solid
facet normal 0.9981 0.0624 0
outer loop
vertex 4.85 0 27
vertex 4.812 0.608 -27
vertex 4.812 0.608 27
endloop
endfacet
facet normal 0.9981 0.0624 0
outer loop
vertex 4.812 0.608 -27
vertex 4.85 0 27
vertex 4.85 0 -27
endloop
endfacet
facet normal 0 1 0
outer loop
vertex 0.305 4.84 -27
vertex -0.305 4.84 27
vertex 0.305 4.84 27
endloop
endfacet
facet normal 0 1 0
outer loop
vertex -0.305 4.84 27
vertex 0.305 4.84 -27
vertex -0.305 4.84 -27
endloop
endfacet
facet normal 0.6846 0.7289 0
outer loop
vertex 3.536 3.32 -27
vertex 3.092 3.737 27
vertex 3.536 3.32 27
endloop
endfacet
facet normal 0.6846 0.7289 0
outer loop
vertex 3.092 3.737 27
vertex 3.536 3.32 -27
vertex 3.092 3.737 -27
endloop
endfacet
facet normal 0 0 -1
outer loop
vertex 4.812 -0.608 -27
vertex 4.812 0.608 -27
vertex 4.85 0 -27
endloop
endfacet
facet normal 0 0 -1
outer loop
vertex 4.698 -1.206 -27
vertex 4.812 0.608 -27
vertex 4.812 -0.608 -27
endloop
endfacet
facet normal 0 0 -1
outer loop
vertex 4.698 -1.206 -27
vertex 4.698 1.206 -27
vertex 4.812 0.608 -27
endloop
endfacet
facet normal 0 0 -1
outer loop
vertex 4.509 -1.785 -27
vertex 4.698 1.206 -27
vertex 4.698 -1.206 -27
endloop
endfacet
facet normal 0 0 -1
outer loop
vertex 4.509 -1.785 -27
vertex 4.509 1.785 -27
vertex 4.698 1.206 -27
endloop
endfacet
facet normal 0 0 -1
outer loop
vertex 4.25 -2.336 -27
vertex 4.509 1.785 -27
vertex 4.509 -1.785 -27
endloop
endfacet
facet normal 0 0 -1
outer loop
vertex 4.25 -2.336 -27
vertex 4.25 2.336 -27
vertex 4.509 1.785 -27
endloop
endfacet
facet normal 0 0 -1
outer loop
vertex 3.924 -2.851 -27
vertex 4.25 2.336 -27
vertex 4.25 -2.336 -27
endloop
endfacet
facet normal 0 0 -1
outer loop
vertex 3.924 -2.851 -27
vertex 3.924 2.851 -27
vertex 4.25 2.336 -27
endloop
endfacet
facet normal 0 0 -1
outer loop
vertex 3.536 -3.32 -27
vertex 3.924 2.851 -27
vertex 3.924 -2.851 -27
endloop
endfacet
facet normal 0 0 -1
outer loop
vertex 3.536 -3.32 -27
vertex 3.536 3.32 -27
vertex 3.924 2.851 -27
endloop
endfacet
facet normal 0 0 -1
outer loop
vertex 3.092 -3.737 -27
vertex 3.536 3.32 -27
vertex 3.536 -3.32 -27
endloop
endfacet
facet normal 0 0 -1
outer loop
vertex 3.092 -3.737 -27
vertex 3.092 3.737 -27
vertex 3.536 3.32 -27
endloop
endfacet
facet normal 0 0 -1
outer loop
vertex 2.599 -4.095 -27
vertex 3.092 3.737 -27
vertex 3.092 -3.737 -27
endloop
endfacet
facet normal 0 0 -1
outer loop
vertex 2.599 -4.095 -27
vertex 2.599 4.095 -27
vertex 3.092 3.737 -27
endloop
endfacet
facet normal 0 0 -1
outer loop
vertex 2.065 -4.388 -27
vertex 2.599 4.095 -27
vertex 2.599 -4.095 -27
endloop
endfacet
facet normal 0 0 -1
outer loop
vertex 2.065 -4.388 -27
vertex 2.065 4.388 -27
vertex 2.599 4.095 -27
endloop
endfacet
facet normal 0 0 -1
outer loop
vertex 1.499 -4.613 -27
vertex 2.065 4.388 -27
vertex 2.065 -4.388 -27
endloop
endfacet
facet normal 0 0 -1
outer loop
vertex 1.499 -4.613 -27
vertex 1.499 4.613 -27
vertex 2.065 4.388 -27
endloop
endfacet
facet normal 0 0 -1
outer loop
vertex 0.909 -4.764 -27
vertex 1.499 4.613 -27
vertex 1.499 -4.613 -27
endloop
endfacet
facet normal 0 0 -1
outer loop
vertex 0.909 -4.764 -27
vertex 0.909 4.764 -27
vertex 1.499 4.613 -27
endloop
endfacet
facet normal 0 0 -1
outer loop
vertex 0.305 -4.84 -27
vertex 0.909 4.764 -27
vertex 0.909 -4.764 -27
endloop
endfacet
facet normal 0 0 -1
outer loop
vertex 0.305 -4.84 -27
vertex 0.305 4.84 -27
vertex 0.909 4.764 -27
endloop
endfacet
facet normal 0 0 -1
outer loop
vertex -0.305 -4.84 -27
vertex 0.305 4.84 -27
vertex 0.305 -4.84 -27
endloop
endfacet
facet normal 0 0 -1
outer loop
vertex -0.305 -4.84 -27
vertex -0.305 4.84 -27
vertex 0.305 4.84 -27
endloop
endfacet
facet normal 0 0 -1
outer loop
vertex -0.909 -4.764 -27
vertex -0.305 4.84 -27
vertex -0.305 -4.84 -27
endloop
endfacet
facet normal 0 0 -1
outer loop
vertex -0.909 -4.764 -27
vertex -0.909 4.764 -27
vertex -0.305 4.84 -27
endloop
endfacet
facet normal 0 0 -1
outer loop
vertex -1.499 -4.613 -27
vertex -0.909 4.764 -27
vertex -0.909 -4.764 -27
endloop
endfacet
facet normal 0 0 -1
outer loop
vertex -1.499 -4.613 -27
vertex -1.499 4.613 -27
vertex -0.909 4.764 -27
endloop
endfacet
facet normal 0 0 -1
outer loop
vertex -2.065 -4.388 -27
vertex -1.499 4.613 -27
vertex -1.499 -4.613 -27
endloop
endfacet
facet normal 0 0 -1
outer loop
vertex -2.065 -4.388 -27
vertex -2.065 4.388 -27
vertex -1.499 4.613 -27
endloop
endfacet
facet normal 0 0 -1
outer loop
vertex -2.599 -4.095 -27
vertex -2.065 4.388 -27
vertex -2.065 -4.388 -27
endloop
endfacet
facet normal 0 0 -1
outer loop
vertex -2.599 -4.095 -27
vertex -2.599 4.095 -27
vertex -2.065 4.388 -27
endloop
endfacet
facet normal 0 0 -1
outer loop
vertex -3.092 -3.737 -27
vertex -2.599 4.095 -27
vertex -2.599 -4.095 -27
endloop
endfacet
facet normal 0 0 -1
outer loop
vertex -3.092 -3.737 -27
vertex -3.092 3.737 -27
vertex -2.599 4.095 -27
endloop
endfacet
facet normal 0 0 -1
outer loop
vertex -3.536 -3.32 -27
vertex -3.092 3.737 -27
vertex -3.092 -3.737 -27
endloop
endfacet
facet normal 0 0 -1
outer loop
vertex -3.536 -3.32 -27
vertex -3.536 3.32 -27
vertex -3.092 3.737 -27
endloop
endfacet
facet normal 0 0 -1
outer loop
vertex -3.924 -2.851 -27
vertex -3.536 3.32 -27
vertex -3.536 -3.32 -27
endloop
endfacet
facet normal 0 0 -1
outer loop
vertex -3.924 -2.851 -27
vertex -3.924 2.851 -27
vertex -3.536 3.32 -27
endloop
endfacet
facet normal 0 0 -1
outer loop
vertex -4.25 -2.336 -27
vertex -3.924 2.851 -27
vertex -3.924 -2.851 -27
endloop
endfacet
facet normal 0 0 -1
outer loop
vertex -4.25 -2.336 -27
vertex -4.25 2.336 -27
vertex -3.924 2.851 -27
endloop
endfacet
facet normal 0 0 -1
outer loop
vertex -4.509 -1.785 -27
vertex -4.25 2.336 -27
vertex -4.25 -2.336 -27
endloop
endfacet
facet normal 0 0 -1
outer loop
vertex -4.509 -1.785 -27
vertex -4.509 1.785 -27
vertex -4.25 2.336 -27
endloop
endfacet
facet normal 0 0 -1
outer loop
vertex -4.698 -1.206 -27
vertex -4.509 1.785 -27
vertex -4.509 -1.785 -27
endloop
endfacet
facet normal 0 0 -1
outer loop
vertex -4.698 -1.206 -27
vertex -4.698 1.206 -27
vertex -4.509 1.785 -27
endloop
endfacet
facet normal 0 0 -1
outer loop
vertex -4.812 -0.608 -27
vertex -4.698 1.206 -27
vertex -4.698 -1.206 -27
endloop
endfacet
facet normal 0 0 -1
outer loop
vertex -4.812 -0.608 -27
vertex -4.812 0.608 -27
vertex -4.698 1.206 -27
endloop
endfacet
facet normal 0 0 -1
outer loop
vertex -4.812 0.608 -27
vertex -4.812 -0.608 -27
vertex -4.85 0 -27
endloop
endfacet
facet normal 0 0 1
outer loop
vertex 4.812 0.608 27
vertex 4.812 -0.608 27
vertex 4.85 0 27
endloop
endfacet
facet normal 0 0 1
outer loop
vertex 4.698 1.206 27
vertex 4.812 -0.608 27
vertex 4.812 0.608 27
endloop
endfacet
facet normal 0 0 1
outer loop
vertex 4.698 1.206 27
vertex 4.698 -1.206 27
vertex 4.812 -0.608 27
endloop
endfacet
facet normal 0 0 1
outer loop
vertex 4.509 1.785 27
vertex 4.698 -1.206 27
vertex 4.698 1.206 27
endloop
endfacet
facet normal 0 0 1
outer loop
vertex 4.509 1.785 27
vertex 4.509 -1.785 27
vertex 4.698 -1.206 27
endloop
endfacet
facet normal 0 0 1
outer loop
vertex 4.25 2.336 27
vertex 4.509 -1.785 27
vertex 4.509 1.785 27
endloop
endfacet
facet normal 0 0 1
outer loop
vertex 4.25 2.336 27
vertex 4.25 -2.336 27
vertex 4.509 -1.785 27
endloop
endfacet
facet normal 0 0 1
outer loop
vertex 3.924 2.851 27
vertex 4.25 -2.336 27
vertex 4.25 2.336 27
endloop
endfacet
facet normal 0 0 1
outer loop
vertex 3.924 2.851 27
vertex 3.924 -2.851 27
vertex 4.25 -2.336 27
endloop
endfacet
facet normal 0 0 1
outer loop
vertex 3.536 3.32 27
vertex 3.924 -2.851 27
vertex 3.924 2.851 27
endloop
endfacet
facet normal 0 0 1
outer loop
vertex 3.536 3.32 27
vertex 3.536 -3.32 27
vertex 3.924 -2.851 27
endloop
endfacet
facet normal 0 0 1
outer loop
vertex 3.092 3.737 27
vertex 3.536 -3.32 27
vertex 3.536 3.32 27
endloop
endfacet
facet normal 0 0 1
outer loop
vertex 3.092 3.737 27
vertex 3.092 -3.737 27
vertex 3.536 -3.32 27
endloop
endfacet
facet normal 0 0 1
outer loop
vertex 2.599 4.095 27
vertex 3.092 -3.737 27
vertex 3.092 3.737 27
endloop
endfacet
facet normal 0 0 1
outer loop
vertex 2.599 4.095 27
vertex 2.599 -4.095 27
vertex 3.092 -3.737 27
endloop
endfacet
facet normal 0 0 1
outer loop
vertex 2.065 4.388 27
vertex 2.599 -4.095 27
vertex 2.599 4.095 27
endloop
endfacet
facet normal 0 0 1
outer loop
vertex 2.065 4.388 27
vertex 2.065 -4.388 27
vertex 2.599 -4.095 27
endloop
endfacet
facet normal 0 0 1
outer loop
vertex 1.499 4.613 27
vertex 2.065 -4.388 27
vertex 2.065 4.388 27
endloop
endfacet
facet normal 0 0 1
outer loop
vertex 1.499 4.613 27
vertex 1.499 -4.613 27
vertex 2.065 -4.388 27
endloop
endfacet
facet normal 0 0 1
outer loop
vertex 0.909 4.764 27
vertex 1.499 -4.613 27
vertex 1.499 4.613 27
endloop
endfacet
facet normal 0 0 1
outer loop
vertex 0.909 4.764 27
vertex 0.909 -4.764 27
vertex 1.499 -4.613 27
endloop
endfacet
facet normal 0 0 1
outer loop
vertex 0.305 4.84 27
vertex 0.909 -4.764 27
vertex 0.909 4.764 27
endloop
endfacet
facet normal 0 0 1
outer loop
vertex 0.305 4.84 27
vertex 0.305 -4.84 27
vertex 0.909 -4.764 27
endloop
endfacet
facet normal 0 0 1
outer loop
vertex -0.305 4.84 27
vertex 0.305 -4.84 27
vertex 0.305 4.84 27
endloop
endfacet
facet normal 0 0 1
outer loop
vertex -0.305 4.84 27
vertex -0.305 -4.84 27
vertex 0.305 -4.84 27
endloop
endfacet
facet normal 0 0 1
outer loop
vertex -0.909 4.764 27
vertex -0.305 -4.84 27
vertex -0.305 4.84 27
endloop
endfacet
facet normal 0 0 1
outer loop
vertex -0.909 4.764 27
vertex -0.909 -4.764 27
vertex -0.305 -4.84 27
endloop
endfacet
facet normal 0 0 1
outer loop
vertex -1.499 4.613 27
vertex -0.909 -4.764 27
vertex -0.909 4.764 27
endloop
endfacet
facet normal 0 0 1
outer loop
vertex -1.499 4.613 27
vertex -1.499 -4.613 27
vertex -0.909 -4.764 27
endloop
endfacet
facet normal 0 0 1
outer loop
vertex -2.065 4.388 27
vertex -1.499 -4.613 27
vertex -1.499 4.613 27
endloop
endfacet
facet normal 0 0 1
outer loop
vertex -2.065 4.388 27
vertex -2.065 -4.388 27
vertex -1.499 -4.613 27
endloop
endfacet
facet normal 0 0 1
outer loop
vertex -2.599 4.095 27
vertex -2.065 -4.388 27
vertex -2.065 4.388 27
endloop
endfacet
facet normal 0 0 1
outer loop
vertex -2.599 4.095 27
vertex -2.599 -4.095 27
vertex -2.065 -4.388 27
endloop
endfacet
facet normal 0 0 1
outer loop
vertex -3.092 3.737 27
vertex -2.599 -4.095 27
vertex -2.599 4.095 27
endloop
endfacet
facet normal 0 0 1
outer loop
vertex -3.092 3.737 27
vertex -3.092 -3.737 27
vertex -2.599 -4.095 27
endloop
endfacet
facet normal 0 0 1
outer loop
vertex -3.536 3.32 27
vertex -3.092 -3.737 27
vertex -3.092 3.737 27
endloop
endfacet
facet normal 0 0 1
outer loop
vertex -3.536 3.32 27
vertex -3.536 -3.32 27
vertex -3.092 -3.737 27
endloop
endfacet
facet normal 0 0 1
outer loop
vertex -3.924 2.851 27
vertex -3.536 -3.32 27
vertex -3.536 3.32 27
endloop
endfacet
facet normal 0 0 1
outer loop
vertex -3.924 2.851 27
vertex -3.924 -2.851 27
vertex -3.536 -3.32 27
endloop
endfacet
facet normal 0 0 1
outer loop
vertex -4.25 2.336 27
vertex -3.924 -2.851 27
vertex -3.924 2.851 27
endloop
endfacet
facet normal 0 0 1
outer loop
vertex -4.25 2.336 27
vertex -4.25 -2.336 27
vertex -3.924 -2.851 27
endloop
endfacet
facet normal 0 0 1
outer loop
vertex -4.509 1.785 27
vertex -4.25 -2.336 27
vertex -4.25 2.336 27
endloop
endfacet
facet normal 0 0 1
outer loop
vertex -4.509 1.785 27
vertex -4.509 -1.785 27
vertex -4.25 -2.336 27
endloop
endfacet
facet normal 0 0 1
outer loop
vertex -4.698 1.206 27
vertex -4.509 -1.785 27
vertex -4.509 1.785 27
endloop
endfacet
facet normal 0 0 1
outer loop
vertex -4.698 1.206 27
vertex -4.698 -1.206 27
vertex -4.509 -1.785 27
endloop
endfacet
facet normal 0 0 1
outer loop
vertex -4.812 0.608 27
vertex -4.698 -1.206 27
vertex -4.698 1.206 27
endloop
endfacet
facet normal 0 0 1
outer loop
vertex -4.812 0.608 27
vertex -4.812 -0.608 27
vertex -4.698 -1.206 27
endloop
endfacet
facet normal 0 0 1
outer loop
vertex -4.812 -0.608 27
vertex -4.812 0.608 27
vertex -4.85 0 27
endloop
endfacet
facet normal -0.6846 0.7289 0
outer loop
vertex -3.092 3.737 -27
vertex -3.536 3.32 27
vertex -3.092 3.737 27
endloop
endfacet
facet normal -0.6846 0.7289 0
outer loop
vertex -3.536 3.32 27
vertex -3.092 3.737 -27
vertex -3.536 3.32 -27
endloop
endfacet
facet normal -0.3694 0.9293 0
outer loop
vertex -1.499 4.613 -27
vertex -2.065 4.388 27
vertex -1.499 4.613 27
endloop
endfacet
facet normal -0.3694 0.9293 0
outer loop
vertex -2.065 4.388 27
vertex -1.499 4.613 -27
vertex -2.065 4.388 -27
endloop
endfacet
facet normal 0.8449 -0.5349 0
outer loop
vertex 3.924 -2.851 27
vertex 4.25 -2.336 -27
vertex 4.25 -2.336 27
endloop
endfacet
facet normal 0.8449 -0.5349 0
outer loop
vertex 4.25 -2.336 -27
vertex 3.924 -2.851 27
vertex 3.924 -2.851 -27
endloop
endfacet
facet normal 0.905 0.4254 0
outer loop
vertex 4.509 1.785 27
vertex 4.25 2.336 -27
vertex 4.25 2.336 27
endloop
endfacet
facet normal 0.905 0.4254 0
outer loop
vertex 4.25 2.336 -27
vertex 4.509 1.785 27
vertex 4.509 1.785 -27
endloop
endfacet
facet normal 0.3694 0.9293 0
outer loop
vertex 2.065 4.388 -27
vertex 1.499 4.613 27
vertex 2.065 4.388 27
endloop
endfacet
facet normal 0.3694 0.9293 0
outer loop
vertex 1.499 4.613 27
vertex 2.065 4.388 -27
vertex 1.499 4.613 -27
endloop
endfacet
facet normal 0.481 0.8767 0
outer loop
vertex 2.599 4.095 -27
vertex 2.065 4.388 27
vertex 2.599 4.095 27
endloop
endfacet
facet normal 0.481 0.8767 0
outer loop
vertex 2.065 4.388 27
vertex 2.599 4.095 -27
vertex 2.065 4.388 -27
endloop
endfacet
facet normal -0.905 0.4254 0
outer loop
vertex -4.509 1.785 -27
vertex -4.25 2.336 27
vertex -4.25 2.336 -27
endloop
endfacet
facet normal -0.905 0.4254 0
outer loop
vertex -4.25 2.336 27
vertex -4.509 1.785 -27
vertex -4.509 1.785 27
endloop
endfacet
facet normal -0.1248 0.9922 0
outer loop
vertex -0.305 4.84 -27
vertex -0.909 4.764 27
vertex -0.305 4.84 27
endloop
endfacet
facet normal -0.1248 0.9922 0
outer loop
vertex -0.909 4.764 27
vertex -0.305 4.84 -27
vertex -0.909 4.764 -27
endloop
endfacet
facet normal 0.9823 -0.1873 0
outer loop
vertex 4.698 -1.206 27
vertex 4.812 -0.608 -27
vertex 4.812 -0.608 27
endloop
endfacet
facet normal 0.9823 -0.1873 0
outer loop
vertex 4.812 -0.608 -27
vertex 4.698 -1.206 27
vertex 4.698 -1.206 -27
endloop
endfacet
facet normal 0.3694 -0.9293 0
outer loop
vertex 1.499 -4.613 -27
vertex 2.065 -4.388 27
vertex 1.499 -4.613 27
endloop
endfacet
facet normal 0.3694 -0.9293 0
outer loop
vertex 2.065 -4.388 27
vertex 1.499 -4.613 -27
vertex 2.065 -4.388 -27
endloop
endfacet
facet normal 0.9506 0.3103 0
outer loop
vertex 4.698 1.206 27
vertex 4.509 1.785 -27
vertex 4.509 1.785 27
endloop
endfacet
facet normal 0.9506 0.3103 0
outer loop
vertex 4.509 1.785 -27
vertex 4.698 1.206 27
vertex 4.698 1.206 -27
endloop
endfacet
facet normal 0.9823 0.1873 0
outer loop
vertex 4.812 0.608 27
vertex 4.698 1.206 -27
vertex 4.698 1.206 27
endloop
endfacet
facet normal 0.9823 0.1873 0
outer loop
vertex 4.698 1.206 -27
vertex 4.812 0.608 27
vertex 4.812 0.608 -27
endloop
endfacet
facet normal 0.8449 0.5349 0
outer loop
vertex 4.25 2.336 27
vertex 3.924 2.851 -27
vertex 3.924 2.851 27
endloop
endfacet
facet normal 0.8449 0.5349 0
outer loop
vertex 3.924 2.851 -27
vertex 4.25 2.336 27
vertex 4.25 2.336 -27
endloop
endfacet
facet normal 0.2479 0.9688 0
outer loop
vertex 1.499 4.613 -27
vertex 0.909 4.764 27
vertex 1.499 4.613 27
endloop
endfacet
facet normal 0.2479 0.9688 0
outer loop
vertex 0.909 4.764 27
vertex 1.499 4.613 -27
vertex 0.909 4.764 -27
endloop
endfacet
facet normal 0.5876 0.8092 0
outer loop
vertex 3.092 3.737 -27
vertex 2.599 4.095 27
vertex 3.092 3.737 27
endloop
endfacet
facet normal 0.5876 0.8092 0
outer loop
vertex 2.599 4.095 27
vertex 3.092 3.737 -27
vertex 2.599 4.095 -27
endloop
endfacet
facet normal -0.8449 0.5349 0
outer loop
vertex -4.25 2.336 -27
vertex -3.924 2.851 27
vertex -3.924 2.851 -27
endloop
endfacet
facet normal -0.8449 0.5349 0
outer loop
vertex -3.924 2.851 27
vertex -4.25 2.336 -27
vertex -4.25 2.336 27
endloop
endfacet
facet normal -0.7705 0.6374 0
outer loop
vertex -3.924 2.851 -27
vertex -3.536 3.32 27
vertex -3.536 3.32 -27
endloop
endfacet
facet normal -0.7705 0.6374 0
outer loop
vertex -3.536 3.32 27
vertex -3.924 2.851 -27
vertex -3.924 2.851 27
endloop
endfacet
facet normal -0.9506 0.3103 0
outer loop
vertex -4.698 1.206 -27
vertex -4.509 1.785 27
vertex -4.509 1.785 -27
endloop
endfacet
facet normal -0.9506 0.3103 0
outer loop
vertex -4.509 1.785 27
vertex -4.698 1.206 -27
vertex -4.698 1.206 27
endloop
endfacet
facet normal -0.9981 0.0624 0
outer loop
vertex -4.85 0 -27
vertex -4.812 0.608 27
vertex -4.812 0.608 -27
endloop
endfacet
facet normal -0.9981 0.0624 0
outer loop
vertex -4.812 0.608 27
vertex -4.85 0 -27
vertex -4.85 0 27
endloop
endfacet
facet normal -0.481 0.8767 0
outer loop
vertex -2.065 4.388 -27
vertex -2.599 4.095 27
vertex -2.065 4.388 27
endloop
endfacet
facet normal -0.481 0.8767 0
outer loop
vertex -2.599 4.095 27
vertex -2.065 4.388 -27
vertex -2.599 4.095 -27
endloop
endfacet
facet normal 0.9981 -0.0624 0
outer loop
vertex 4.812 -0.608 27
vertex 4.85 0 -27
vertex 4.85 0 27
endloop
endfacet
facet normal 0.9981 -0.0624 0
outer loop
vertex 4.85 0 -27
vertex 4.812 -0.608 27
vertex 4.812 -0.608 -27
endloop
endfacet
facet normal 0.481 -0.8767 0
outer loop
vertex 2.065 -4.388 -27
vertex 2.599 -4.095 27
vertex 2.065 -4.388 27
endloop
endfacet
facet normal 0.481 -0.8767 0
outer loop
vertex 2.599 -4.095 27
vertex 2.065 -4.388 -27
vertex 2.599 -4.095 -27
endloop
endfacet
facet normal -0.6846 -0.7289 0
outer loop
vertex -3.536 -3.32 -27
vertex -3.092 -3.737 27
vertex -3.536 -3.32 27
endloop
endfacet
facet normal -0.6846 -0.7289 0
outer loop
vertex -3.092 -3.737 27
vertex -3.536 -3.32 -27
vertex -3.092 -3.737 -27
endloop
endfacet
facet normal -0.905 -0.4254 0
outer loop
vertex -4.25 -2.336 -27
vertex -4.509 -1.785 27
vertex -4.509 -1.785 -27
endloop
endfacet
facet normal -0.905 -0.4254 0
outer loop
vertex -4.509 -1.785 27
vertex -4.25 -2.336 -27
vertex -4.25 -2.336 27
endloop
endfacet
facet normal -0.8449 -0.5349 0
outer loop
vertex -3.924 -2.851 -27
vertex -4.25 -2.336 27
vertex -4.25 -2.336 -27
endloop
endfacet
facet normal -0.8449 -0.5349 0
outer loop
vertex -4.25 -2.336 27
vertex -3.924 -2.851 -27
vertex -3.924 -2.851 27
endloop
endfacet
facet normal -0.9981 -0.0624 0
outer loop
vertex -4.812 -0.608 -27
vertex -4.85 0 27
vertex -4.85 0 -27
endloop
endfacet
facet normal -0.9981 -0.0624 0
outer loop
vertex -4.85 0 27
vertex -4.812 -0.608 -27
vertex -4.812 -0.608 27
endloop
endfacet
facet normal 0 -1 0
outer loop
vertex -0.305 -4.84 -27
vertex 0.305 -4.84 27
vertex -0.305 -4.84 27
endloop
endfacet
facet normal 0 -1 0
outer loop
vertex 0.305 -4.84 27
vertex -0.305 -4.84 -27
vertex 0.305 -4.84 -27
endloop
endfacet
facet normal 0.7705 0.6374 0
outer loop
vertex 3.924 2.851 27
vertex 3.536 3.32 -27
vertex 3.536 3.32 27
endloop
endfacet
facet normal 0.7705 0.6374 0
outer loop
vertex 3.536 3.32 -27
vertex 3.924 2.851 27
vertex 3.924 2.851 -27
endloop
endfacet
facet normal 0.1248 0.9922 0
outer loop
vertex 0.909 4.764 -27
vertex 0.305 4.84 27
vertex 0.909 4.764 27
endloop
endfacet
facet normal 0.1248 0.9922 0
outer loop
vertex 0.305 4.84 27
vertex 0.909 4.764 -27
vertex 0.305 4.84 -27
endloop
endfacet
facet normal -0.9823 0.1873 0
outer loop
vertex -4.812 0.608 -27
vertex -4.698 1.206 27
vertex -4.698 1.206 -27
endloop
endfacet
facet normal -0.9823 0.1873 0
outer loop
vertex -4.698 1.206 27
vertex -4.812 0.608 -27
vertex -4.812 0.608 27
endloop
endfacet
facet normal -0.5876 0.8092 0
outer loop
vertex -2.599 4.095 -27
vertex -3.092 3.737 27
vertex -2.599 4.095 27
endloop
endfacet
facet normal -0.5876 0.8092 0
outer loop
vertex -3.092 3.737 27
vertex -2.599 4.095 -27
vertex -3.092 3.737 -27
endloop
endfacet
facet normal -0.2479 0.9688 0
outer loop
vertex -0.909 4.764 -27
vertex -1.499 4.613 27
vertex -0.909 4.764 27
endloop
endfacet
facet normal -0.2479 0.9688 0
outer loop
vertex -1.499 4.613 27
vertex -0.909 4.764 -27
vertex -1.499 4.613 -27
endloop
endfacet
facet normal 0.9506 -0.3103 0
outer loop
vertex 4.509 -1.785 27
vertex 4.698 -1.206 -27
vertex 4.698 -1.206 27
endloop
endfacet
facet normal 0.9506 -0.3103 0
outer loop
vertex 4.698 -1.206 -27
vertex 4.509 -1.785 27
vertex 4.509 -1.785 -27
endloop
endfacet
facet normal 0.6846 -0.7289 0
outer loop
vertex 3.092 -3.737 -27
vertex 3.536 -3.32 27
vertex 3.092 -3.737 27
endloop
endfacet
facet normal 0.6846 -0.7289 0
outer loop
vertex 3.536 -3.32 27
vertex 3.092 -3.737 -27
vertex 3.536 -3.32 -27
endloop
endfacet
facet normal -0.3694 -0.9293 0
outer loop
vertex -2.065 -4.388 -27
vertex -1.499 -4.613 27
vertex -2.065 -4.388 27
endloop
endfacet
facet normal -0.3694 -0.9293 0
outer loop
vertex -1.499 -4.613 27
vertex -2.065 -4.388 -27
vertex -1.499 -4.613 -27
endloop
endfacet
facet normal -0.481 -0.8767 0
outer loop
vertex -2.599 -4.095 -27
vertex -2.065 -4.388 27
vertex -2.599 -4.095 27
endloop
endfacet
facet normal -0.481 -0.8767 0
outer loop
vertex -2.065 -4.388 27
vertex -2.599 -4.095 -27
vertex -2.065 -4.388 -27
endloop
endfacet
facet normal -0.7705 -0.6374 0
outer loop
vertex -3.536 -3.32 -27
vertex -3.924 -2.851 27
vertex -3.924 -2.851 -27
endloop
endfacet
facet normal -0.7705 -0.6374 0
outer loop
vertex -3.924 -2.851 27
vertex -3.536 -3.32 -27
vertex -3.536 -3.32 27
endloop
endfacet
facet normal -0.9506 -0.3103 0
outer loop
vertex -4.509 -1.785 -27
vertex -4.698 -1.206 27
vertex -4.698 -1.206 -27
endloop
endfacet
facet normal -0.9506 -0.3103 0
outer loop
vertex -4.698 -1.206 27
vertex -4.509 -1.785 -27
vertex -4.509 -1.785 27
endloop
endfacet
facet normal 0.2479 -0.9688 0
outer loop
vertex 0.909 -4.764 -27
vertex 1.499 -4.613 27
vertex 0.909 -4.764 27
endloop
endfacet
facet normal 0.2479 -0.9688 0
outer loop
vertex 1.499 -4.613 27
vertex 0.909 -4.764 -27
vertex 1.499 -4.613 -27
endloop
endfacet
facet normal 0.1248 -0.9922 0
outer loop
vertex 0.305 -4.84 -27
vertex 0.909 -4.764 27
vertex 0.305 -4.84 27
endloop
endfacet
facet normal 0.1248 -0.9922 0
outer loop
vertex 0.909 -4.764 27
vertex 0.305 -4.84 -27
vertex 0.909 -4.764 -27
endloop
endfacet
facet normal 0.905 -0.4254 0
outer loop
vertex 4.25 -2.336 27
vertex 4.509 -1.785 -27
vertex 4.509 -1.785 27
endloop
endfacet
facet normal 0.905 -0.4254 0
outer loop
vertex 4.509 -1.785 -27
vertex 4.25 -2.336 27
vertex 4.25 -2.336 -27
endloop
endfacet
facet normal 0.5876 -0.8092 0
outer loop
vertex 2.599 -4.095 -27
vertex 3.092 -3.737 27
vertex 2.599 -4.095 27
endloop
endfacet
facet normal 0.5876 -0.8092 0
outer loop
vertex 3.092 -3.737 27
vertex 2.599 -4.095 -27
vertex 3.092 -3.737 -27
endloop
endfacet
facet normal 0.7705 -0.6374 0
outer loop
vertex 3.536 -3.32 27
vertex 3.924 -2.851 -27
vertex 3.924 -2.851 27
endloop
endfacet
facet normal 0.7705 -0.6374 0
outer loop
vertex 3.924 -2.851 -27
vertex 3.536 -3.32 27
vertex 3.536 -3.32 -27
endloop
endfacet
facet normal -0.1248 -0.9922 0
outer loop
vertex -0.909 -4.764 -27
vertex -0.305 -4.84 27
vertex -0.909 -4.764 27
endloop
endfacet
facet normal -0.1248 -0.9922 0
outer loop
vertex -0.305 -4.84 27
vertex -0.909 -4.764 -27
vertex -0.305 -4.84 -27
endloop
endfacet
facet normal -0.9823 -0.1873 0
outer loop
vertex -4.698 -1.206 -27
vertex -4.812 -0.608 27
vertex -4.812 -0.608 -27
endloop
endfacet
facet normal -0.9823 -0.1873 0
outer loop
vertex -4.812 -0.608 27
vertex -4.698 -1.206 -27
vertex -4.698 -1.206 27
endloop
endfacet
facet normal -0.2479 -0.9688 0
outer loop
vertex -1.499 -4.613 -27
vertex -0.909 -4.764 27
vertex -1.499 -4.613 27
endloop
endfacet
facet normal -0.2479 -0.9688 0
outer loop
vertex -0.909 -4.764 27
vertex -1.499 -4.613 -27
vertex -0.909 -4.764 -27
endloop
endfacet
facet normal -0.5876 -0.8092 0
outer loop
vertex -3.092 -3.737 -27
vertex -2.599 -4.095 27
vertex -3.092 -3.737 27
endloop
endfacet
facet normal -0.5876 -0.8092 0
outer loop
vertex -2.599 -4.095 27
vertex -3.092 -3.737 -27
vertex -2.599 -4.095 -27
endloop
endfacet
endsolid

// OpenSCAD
$fn = 50;


difference() {
	union() {
		translate(v = [0, 0, -27.0000000000]) {
			cylinder(h = 54, r = 4.8500000000);
		}
	}
	union() {
		translate(v = [0, 0, -100.0000000000]) {
			cylinder(h = 200, r = 0);
		}
	}
}
